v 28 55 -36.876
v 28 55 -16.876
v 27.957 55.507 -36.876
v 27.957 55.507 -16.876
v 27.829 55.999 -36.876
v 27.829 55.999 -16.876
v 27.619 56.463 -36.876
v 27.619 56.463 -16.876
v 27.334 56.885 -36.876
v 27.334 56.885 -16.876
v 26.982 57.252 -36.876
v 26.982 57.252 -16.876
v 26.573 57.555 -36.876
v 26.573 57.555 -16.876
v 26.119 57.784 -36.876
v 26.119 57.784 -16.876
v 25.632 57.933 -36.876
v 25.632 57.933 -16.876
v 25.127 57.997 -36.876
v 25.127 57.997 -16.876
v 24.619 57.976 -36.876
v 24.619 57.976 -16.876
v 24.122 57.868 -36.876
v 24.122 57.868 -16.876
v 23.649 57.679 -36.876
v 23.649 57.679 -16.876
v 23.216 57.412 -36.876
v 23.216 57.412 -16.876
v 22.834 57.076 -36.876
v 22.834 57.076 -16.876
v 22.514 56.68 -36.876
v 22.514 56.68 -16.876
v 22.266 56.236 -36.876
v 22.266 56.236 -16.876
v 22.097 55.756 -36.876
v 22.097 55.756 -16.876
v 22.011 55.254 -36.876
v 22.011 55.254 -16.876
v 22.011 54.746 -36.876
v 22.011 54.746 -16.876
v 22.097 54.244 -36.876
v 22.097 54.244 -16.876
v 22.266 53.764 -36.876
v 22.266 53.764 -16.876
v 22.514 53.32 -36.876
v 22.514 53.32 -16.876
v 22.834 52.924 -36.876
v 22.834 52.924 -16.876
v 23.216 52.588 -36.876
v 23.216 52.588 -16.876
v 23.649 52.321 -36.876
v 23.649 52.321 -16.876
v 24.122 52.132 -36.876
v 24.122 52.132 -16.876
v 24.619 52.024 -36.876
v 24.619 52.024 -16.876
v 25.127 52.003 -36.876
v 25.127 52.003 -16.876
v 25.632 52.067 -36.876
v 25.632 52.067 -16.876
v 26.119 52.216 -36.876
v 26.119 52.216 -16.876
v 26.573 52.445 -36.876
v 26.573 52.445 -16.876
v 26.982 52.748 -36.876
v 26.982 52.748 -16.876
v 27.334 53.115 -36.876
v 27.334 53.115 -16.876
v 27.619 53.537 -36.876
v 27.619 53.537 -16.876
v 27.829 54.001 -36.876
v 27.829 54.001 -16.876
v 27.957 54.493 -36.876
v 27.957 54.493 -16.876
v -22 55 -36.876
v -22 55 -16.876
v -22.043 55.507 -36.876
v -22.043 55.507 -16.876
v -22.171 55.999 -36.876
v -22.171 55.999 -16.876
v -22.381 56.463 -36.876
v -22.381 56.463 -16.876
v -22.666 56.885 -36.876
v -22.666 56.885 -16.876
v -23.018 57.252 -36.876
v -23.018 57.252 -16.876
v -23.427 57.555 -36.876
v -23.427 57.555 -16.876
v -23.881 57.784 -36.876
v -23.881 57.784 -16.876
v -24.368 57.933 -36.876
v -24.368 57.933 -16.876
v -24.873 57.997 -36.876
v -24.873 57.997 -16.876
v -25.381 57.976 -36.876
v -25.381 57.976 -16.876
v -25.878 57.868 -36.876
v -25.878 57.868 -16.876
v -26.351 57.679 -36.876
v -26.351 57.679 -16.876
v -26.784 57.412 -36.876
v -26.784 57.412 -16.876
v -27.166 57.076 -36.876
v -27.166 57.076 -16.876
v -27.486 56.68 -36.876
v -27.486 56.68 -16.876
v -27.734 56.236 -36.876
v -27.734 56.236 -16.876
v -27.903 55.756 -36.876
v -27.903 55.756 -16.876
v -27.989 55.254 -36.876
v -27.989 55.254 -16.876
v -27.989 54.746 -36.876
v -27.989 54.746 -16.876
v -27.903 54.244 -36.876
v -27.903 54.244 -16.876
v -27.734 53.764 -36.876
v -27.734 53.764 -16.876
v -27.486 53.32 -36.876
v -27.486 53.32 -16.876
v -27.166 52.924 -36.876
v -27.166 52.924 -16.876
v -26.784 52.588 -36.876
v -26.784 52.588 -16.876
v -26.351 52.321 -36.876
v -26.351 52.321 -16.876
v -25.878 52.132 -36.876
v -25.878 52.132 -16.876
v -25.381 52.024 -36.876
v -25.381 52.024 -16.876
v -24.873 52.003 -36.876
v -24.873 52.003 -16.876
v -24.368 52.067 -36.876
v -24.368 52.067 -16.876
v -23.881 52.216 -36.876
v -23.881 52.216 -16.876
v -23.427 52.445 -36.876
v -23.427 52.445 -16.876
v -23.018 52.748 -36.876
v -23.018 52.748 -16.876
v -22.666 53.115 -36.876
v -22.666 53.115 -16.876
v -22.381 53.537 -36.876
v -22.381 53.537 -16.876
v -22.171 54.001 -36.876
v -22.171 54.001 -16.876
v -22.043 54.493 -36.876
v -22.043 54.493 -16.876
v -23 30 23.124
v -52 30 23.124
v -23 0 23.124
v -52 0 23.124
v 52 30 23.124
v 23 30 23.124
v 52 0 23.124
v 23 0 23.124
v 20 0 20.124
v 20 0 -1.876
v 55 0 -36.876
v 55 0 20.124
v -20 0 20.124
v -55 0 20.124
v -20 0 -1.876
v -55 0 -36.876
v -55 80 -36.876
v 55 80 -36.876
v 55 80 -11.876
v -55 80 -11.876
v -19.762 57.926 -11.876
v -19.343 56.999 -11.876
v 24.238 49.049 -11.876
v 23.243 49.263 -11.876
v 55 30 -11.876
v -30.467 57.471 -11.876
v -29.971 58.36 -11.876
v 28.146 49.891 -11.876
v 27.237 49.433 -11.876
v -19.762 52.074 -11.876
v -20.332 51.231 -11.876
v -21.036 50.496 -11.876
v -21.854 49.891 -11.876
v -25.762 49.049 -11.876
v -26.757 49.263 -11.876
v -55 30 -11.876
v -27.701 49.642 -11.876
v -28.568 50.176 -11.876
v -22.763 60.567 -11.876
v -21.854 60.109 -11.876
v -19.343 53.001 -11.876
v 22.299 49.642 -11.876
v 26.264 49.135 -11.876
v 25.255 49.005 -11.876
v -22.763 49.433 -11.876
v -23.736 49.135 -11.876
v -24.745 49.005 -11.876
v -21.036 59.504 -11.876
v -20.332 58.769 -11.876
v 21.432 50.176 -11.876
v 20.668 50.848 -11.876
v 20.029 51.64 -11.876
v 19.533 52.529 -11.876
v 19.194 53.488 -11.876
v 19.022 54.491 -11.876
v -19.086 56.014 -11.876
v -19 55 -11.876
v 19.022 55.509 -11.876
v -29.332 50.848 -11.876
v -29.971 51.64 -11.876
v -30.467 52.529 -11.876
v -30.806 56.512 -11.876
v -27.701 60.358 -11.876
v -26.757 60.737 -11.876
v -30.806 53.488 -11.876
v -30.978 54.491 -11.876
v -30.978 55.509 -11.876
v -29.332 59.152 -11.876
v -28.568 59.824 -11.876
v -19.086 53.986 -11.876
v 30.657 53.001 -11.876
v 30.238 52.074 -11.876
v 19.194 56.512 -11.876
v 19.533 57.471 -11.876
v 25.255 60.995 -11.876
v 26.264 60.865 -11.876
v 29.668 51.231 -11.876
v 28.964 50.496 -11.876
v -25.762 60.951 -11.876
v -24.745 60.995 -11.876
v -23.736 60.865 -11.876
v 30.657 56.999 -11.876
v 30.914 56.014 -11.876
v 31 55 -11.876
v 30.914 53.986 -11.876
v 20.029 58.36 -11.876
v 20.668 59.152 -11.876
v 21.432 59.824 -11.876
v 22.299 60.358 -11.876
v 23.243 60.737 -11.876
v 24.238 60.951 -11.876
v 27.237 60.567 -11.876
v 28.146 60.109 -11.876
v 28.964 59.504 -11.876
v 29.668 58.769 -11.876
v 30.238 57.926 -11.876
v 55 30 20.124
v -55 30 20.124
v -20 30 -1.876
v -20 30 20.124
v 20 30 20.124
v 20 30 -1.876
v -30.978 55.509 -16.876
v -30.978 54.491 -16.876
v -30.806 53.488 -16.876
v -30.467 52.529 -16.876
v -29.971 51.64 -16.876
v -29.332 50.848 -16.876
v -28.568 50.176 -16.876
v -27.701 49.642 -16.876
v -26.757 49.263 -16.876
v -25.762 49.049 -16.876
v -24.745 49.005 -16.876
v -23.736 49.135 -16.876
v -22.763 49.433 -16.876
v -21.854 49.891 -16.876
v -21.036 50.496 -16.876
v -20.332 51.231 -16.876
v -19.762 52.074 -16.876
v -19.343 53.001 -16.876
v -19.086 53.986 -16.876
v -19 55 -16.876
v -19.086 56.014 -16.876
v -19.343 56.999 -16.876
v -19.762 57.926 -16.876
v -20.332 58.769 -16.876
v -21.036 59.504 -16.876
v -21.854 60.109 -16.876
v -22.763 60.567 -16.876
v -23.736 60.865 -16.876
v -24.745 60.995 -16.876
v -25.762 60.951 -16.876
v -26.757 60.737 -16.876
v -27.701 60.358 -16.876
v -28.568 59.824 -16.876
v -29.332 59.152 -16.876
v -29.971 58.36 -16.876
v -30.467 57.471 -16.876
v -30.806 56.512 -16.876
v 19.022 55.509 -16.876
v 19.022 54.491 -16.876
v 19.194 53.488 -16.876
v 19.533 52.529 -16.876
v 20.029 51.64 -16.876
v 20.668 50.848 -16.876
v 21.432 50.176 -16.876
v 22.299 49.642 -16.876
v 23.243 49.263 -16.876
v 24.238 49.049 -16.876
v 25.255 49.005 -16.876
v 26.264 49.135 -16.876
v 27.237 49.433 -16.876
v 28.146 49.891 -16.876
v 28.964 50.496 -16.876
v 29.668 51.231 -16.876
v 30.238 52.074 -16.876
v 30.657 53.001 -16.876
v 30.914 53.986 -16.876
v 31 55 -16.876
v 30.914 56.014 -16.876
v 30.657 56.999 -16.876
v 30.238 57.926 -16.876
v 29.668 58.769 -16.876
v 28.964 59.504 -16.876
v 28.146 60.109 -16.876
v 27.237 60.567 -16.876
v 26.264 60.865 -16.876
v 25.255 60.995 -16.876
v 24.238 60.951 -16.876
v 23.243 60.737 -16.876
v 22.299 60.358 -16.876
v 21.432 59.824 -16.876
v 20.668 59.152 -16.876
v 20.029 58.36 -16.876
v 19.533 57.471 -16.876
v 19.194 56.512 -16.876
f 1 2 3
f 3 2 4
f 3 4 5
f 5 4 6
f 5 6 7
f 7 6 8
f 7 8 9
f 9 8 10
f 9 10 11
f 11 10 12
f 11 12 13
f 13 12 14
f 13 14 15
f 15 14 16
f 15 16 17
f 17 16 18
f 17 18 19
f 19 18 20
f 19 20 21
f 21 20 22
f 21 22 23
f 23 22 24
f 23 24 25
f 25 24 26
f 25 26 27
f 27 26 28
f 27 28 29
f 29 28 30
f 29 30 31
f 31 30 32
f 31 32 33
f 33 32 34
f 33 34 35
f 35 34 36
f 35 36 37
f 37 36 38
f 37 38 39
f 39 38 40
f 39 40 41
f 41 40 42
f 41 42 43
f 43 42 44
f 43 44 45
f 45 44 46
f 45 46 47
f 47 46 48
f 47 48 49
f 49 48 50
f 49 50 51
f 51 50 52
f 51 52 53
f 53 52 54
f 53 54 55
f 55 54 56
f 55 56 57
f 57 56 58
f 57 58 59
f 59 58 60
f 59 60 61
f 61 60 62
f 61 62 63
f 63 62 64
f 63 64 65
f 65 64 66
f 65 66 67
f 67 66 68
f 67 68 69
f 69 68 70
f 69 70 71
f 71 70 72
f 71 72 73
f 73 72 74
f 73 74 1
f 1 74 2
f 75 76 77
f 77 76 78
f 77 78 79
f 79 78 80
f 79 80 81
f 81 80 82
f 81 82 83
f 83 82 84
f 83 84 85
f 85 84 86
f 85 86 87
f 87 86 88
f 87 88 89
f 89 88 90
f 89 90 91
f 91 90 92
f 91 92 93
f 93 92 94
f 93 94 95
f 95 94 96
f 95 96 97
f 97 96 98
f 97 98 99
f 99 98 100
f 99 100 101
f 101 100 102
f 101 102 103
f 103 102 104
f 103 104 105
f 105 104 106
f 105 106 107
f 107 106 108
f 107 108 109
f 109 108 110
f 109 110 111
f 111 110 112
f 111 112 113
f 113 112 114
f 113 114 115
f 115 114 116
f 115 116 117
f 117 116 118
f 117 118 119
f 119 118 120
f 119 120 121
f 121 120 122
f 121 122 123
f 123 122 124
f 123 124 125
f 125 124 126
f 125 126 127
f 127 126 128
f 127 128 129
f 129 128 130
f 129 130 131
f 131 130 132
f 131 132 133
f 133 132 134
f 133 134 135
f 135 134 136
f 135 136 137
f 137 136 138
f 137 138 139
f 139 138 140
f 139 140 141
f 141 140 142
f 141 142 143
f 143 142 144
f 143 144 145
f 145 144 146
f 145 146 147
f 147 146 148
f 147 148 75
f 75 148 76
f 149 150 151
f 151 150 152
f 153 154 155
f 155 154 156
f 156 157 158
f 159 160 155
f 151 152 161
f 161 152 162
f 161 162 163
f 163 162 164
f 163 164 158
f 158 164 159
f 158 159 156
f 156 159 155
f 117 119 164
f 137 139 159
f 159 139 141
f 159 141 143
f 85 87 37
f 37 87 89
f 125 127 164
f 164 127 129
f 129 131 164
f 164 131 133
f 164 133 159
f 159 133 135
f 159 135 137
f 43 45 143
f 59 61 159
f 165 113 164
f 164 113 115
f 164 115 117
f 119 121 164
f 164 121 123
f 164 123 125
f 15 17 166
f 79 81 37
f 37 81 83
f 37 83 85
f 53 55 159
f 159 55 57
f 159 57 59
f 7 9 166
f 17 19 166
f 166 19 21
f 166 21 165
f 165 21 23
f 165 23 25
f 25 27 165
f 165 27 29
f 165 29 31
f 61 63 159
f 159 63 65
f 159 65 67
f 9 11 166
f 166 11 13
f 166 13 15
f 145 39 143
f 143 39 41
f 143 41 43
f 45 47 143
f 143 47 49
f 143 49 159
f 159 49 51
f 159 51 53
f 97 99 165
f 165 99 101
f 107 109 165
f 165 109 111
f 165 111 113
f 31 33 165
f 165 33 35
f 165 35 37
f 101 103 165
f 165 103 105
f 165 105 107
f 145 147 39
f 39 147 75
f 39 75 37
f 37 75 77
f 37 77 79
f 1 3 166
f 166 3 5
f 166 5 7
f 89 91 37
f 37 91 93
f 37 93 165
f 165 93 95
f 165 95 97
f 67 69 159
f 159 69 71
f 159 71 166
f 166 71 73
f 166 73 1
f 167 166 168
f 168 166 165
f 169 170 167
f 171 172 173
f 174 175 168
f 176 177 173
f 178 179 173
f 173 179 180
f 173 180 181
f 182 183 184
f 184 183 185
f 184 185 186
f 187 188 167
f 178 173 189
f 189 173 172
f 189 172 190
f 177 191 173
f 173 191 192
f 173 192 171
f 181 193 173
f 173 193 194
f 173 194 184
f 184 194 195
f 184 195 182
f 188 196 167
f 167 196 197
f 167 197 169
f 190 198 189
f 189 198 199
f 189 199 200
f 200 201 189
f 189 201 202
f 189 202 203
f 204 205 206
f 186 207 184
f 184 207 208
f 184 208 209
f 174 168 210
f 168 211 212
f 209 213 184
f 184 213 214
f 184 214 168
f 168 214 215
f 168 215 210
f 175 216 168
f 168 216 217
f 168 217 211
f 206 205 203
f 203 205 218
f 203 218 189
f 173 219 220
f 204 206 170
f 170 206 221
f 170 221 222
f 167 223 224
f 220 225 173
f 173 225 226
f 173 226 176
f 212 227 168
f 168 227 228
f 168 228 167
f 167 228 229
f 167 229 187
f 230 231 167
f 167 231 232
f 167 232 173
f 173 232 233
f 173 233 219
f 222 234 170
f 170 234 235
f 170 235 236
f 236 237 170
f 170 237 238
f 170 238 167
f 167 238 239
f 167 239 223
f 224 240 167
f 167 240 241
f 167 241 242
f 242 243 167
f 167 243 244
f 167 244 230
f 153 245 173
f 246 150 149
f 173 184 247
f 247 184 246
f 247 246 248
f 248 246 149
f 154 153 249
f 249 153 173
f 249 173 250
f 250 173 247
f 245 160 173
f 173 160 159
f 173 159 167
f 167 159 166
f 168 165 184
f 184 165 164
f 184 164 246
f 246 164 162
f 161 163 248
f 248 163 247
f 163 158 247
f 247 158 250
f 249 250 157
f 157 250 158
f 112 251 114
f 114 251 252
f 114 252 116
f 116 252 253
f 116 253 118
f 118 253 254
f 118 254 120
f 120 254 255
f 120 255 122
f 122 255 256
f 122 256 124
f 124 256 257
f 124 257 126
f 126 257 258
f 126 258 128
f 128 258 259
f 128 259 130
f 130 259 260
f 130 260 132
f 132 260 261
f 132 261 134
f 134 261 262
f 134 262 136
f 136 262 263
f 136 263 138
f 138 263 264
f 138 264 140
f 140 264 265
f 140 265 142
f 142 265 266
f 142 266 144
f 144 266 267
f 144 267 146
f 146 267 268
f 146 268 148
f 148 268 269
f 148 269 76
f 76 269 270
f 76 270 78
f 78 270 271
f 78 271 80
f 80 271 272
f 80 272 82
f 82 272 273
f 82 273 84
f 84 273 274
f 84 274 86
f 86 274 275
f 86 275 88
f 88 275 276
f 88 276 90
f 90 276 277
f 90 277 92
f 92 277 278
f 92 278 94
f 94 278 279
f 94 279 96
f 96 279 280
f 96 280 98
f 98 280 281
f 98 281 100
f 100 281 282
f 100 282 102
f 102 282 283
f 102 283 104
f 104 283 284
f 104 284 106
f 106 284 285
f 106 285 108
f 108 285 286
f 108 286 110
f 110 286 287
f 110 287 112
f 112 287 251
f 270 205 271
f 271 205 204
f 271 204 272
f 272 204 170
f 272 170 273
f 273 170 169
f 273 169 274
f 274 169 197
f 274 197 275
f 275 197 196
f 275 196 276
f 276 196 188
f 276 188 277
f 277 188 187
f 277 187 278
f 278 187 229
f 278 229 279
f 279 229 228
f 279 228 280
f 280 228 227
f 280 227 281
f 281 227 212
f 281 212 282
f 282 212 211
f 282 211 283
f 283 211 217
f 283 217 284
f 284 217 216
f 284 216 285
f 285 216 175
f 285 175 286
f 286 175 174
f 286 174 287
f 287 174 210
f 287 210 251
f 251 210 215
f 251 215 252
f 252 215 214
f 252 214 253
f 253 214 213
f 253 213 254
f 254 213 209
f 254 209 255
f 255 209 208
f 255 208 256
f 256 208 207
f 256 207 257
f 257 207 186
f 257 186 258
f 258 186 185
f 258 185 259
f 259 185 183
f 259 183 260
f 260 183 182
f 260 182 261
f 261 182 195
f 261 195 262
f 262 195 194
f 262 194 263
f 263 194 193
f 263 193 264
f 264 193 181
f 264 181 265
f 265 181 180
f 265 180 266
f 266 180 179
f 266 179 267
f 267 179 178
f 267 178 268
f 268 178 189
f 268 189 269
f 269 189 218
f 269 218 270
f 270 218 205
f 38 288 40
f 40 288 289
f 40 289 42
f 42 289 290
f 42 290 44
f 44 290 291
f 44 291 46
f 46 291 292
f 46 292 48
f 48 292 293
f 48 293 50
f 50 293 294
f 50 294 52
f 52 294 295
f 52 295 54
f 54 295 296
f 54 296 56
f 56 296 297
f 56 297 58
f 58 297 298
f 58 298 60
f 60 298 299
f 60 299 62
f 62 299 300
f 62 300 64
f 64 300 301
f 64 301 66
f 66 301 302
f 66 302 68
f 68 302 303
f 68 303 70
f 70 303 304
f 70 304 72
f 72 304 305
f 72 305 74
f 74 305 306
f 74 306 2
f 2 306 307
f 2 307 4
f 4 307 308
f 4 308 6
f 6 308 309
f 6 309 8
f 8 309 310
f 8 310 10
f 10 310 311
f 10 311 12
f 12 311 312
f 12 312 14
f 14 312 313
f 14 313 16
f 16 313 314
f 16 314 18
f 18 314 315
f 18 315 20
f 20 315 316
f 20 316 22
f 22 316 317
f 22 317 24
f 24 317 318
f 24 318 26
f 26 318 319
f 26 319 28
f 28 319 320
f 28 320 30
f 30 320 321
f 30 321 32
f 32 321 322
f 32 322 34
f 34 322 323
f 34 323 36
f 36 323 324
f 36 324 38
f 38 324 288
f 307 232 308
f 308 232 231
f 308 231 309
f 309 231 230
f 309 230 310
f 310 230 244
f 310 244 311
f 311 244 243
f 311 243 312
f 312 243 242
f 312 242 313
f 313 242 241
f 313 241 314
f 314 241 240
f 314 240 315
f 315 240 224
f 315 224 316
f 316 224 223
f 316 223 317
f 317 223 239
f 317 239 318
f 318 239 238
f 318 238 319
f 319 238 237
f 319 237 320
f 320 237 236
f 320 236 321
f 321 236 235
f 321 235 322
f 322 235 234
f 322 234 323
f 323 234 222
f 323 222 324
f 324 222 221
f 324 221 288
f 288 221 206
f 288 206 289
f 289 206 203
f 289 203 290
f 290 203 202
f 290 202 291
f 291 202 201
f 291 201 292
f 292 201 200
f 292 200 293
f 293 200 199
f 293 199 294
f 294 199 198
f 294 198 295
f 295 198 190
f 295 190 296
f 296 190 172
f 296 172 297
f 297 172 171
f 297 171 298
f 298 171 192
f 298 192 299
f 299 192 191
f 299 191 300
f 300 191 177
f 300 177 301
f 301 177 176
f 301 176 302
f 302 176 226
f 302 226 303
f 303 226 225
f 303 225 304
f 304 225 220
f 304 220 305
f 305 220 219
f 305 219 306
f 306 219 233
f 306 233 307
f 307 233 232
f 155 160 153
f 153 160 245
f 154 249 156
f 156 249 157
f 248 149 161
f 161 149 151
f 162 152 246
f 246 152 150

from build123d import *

# Parameters (mm, degrees)
BOSS_EXTRUDE2_DEPTH = 55
SKETCH4_W           = 40
SKETCH4_H           = 25
CUT_EXTRUDE1_DEPTH  = 83.974750358
SKETCH5_R           = 3
CUT_EXTRUDE2_DEPTH  = 104.198837203
SKETCH6_R           = 6
CUT_EXTRUDE3_DEPTH  = 5
CHAMFER1_SIZE       = 3


with BuildPart() as part:
    # Sketch3 → Boss-Extrude2 (new, symmetric)
    with BuildSketch(Plane(origin=(0, 0, 0), x_dir=(0, 0, -1), z_dir=(1, 0, 0))):
        Polygon((-23.124409198, 0), (36.875590802, 0), (36.875590802, 80), (11.875590802, 80), (11.875590802, 30), (-23.124409198, 30), align=None)
    extrude(amount=BOSS_EXTRUDE2_DEPTH, both=True)

    # Sketch4 → Cut-Extrude1 (cut, through all)
    with BuildSketch(Plane(origin=(0, 30, 0), x_dir=(1, 0, 0), z_dir=(0, 1, 0))):
        with Locations((0, -10.624409198)):
            Rectangle(SKETCH4_W, SKETCH4_H)
    extrude(amount=-CUT_EXTRUDE1_DEPTH, mode=Mode.SUBTRACT)

    # Sketch5 → Cut-Extrude2 (cut, through all)
    with BuildSketch(Plane.XY.offset(-11.875590802)):
        with Locations((-25, 55)):
            Circle(SKETCH5_R)
        with Locations((25, 55)):
            Circle(SKETCH5_R)
    extrude(amount=-CUT_EXTRUDE2_DEPTH, mode=Mode.SUBTRACT)

    # Sketch6 → Cut-Extrude3 (cut)
    with BuildSketch(Plane.XY.offset(-11.875590802)):
        with Locations((-25, 55)):
            Circle(SKETCH6_R)
        with Locations((25, 55)):
            Circle(SKETCH6_R)
    extrude(amount=-CUT_EXTRUDE3_DEPTH, mode=Mode.SUBTRACT)

    # Chamfer1
    chamfer1_edges = [part.edges().sort_by_distance(p)[0] for p in [
        (-20, 15, 23.124409198),
        (20, 15, 23.124409198),
        (55, 15, 23.124409198),
        (-55, 15, 23.124409198),
    ]]
    chamfer(chamfer1_edges, length=CHAMFER1_SIZE)


solid = part.part
